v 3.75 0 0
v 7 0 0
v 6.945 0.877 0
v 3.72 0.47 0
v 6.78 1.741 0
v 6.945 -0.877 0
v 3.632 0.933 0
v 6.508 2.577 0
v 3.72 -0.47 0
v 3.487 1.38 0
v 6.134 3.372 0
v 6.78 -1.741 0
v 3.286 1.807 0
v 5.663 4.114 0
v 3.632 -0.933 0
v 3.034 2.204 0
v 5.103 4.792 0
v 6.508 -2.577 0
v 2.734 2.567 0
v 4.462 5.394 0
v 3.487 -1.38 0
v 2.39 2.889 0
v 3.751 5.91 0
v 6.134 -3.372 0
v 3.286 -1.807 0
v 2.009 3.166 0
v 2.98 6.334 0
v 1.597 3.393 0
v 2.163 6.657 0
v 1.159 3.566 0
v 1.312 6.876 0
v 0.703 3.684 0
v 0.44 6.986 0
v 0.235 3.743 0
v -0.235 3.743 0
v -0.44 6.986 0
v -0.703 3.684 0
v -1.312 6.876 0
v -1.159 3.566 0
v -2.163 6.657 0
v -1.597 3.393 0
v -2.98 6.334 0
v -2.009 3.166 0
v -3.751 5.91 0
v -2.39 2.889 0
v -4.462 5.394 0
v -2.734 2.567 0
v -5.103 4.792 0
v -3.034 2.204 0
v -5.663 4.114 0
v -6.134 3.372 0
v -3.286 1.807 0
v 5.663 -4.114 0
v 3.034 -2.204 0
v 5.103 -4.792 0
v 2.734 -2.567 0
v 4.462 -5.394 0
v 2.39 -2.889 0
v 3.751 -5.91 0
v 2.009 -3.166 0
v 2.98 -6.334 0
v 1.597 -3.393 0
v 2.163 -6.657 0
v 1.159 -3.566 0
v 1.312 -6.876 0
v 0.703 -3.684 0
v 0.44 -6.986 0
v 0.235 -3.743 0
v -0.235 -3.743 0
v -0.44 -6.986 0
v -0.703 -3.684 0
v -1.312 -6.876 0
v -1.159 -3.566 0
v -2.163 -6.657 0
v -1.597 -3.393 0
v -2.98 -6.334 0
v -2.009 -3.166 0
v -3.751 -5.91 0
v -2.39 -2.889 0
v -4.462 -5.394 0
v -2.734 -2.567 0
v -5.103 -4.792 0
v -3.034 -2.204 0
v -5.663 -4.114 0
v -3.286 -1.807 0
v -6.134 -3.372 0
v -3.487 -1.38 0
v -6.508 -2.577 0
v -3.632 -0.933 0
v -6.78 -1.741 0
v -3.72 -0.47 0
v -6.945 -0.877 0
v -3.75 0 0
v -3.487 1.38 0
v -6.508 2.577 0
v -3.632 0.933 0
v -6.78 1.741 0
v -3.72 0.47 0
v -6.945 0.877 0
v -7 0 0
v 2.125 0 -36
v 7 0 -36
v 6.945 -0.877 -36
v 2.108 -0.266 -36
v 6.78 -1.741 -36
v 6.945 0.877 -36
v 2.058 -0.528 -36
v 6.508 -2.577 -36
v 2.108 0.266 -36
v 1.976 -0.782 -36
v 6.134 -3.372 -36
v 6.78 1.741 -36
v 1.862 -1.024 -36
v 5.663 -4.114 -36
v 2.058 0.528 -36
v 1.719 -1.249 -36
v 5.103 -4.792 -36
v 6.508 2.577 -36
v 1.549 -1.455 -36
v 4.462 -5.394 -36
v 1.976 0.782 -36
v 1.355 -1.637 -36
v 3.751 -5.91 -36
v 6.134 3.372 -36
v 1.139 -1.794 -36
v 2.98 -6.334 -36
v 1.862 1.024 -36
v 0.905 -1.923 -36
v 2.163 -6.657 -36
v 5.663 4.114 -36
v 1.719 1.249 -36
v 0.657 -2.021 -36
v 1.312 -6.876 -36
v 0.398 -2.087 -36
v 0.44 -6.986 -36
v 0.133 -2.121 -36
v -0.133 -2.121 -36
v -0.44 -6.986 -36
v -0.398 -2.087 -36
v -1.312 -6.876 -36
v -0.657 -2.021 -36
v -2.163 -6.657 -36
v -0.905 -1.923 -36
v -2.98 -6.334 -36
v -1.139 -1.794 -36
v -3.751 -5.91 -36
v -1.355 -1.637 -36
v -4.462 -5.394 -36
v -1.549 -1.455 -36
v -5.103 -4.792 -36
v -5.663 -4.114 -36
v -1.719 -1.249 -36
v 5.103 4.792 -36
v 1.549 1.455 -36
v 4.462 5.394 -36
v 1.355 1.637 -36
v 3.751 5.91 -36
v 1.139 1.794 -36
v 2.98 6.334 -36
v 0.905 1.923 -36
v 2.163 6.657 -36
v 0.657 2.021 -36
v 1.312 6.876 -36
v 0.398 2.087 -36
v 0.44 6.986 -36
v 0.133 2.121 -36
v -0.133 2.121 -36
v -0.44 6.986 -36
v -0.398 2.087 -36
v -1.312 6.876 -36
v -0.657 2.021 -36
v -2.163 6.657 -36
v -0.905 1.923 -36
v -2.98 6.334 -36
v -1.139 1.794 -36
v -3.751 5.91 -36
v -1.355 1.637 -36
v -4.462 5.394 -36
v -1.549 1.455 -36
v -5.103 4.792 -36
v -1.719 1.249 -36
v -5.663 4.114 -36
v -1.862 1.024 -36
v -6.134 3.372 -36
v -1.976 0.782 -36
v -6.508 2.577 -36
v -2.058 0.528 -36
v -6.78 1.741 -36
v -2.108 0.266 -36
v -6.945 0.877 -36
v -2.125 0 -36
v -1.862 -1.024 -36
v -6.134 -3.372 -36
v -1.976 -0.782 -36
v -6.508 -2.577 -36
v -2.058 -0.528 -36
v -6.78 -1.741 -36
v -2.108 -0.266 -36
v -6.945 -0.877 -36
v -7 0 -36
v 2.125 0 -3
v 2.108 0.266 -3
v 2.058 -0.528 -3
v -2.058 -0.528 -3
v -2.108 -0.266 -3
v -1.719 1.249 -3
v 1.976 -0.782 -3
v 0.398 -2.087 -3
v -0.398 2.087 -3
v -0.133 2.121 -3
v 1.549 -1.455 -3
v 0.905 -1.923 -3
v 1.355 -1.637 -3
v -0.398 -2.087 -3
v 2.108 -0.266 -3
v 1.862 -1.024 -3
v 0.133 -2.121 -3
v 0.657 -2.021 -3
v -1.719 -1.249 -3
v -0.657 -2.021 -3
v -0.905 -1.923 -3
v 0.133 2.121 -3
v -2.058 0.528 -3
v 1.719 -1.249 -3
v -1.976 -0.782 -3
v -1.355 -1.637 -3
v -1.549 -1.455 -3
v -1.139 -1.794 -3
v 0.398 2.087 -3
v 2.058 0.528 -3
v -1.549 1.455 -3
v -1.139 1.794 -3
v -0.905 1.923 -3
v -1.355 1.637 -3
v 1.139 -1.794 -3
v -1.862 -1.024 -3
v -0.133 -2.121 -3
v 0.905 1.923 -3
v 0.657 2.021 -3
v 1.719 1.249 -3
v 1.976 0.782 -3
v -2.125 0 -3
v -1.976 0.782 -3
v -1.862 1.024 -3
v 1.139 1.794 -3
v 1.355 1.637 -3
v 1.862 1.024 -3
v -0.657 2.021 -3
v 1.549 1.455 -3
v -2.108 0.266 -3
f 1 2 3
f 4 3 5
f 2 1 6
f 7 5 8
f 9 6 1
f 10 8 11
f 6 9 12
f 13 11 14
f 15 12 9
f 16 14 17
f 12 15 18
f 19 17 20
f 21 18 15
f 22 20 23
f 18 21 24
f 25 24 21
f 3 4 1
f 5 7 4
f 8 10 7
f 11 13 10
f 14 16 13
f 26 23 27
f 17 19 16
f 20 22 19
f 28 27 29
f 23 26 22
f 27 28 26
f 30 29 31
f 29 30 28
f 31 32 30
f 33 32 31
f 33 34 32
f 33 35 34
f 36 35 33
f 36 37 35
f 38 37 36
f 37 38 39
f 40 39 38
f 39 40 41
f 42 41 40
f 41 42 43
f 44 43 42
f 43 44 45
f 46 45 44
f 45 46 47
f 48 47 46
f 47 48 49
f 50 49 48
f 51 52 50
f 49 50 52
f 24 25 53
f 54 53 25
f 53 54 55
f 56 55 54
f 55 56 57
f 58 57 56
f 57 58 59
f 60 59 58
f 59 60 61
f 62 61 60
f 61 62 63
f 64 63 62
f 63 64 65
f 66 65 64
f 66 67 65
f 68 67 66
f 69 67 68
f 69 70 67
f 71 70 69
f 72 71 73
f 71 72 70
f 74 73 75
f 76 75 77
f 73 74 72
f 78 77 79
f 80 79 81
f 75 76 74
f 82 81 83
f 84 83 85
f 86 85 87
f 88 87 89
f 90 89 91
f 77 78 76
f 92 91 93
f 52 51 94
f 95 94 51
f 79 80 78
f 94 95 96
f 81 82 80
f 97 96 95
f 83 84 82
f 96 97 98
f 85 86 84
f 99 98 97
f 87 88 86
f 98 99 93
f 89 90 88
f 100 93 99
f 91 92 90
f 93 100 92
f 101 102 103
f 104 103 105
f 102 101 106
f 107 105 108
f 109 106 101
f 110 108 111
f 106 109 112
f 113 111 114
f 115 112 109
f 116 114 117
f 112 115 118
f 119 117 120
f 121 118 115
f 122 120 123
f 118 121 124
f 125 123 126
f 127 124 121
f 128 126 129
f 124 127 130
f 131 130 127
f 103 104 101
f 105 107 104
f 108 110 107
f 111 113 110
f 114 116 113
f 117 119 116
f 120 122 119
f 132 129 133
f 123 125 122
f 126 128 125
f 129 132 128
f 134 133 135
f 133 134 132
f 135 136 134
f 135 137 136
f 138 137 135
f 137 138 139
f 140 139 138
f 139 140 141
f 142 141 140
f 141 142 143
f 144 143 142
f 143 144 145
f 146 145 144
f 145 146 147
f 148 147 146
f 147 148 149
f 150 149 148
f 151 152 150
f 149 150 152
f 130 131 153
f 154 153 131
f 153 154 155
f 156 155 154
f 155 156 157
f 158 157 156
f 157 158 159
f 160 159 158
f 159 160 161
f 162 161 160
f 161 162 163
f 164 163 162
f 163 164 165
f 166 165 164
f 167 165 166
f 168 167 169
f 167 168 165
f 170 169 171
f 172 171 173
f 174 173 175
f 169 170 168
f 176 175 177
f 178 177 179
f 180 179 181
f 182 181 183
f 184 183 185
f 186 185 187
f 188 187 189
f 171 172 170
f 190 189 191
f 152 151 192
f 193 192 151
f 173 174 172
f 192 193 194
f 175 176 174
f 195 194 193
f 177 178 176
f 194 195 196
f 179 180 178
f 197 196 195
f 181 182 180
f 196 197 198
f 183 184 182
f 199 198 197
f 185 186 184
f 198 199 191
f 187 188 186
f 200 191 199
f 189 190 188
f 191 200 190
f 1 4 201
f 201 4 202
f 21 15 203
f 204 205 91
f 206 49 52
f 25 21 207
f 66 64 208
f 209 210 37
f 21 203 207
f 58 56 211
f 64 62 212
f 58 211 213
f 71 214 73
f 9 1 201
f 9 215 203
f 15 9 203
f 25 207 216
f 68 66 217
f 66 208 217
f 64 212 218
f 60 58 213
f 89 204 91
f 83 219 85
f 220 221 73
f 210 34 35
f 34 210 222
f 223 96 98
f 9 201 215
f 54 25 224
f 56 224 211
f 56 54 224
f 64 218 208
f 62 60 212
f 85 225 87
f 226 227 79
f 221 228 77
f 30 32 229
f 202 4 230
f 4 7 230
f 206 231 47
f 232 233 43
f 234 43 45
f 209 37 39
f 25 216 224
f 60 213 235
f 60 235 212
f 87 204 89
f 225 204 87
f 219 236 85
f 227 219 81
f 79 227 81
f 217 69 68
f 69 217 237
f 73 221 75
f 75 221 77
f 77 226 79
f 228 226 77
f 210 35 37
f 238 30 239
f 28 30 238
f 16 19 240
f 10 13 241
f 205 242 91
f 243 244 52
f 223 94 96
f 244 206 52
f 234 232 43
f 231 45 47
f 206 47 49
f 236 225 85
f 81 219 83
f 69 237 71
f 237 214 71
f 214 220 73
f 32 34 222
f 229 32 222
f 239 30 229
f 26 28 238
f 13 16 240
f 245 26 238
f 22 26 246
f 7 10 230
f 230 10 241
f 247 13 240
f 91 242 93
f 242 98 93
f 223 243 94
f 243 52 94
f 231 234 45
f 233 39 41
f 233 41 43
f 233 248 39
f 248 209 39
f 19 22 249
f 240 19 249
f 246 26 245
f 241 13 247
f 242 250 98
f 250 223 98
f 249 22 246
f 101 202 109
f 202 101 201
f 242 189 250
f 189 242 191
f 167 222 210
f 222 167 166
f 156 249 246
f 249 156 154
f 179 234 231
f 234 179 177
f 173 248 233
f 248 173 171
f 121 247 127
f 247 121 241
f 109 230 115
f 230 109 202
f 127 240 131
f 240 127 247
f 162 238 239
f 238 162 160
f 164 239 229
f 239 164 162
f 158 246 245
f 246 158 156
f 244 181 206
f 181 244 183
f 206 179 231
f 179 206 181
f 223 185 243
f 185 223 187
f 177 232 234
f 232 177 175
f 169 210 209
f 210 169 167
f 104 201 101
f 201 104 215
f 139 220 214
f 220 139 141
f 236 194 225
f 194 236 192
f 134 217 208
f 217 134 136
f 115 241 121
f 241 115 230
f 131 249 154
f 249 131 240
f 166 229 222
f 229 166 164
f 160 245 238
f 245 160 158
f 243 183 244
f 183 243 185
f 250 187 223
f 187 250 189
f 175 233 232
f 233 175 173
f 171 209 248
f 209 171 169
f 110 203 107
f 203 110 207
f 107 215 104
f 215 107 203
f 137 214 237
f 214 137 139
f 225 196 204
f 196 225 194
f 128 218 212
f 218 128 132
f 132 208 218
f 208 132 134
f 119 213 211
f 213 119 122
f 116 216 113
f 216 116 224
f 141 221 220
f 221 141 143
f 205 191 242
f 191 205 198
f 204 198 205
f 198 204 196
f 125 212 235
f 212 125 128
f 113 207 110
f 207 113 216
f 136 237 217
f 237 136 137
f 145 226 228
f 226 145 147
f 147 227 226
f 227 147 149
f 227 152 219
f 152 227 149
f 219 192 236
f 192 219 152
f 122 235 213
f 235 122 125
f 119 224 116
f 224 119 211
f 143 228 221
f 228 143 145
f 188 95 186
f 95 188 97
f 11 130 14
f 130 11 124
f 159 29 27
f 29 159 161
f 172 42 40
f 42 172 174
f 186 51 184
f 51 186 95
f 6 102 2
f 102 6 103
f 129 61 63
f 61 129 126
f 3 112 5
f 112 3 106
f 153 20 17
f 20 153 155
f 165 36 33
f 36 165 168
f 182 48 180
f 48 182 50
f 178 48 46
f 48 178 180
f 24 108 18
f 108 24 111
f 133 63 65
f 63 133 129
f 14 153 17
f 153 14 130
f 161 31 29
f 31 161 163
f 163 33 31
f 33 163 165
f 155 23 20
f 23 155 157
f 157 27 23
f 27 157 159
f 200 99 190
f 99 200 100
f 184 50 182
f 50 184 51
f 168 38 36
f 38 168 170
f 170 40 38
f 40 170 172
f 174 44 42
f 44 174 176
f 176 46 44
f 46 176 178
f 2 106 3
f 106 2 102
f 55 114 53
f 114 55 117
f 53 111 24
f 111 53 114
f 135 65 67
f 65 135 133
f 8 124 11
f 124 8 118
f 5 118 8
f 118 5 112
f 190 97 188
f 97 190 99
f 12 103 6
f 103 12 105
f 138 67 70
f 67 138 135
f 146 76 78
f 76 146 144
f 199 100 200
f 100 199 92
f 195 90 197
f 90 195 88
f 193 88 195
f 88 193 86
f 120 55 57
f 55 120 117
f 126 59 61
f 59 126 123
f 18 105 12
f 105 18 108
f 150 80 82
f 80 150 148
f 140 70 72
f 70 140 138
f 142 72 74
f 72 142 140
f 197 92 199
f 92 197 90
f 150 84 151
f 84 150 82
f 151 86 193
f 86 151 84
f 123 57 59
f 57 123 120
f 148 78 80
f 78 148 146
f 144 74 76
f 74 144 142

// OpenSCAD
$fn = 50;


difference() {
	union() {
		translate(v = [0, 0, -36.0000000000]) {
			cylinder(h = 36, r = 7.0000000000);
		}
		cylinder(h = 0, r = 16.0000000000);
	}
	union() {
		translate(v = [0, 0, 0]) {
			rotate(a = [0, 0, 0]) {
				difference() {
					union() {
						#translate(v = [0, 0, -36.0000000000]) {
							cylinder(h = 36, r = 2.0000000000);
						}
						#translate(v = [0, 0, -3]) {
							cylinder(h = 3, r = 7.0000000000, r1 = 2.1250000000, r2 = 3.7500000000);
						}
						#translate(v = [0, 0, -36.0000000000]) {
							cylinder(h = 36, r = 2.1250000000);
						}
						#translate(v = [0, 0, -36.0000000000]) {
							cylinder(h = 36, r = 2.0000000000);
						}
					}
					union();
				}
			}
		}
	}
}
